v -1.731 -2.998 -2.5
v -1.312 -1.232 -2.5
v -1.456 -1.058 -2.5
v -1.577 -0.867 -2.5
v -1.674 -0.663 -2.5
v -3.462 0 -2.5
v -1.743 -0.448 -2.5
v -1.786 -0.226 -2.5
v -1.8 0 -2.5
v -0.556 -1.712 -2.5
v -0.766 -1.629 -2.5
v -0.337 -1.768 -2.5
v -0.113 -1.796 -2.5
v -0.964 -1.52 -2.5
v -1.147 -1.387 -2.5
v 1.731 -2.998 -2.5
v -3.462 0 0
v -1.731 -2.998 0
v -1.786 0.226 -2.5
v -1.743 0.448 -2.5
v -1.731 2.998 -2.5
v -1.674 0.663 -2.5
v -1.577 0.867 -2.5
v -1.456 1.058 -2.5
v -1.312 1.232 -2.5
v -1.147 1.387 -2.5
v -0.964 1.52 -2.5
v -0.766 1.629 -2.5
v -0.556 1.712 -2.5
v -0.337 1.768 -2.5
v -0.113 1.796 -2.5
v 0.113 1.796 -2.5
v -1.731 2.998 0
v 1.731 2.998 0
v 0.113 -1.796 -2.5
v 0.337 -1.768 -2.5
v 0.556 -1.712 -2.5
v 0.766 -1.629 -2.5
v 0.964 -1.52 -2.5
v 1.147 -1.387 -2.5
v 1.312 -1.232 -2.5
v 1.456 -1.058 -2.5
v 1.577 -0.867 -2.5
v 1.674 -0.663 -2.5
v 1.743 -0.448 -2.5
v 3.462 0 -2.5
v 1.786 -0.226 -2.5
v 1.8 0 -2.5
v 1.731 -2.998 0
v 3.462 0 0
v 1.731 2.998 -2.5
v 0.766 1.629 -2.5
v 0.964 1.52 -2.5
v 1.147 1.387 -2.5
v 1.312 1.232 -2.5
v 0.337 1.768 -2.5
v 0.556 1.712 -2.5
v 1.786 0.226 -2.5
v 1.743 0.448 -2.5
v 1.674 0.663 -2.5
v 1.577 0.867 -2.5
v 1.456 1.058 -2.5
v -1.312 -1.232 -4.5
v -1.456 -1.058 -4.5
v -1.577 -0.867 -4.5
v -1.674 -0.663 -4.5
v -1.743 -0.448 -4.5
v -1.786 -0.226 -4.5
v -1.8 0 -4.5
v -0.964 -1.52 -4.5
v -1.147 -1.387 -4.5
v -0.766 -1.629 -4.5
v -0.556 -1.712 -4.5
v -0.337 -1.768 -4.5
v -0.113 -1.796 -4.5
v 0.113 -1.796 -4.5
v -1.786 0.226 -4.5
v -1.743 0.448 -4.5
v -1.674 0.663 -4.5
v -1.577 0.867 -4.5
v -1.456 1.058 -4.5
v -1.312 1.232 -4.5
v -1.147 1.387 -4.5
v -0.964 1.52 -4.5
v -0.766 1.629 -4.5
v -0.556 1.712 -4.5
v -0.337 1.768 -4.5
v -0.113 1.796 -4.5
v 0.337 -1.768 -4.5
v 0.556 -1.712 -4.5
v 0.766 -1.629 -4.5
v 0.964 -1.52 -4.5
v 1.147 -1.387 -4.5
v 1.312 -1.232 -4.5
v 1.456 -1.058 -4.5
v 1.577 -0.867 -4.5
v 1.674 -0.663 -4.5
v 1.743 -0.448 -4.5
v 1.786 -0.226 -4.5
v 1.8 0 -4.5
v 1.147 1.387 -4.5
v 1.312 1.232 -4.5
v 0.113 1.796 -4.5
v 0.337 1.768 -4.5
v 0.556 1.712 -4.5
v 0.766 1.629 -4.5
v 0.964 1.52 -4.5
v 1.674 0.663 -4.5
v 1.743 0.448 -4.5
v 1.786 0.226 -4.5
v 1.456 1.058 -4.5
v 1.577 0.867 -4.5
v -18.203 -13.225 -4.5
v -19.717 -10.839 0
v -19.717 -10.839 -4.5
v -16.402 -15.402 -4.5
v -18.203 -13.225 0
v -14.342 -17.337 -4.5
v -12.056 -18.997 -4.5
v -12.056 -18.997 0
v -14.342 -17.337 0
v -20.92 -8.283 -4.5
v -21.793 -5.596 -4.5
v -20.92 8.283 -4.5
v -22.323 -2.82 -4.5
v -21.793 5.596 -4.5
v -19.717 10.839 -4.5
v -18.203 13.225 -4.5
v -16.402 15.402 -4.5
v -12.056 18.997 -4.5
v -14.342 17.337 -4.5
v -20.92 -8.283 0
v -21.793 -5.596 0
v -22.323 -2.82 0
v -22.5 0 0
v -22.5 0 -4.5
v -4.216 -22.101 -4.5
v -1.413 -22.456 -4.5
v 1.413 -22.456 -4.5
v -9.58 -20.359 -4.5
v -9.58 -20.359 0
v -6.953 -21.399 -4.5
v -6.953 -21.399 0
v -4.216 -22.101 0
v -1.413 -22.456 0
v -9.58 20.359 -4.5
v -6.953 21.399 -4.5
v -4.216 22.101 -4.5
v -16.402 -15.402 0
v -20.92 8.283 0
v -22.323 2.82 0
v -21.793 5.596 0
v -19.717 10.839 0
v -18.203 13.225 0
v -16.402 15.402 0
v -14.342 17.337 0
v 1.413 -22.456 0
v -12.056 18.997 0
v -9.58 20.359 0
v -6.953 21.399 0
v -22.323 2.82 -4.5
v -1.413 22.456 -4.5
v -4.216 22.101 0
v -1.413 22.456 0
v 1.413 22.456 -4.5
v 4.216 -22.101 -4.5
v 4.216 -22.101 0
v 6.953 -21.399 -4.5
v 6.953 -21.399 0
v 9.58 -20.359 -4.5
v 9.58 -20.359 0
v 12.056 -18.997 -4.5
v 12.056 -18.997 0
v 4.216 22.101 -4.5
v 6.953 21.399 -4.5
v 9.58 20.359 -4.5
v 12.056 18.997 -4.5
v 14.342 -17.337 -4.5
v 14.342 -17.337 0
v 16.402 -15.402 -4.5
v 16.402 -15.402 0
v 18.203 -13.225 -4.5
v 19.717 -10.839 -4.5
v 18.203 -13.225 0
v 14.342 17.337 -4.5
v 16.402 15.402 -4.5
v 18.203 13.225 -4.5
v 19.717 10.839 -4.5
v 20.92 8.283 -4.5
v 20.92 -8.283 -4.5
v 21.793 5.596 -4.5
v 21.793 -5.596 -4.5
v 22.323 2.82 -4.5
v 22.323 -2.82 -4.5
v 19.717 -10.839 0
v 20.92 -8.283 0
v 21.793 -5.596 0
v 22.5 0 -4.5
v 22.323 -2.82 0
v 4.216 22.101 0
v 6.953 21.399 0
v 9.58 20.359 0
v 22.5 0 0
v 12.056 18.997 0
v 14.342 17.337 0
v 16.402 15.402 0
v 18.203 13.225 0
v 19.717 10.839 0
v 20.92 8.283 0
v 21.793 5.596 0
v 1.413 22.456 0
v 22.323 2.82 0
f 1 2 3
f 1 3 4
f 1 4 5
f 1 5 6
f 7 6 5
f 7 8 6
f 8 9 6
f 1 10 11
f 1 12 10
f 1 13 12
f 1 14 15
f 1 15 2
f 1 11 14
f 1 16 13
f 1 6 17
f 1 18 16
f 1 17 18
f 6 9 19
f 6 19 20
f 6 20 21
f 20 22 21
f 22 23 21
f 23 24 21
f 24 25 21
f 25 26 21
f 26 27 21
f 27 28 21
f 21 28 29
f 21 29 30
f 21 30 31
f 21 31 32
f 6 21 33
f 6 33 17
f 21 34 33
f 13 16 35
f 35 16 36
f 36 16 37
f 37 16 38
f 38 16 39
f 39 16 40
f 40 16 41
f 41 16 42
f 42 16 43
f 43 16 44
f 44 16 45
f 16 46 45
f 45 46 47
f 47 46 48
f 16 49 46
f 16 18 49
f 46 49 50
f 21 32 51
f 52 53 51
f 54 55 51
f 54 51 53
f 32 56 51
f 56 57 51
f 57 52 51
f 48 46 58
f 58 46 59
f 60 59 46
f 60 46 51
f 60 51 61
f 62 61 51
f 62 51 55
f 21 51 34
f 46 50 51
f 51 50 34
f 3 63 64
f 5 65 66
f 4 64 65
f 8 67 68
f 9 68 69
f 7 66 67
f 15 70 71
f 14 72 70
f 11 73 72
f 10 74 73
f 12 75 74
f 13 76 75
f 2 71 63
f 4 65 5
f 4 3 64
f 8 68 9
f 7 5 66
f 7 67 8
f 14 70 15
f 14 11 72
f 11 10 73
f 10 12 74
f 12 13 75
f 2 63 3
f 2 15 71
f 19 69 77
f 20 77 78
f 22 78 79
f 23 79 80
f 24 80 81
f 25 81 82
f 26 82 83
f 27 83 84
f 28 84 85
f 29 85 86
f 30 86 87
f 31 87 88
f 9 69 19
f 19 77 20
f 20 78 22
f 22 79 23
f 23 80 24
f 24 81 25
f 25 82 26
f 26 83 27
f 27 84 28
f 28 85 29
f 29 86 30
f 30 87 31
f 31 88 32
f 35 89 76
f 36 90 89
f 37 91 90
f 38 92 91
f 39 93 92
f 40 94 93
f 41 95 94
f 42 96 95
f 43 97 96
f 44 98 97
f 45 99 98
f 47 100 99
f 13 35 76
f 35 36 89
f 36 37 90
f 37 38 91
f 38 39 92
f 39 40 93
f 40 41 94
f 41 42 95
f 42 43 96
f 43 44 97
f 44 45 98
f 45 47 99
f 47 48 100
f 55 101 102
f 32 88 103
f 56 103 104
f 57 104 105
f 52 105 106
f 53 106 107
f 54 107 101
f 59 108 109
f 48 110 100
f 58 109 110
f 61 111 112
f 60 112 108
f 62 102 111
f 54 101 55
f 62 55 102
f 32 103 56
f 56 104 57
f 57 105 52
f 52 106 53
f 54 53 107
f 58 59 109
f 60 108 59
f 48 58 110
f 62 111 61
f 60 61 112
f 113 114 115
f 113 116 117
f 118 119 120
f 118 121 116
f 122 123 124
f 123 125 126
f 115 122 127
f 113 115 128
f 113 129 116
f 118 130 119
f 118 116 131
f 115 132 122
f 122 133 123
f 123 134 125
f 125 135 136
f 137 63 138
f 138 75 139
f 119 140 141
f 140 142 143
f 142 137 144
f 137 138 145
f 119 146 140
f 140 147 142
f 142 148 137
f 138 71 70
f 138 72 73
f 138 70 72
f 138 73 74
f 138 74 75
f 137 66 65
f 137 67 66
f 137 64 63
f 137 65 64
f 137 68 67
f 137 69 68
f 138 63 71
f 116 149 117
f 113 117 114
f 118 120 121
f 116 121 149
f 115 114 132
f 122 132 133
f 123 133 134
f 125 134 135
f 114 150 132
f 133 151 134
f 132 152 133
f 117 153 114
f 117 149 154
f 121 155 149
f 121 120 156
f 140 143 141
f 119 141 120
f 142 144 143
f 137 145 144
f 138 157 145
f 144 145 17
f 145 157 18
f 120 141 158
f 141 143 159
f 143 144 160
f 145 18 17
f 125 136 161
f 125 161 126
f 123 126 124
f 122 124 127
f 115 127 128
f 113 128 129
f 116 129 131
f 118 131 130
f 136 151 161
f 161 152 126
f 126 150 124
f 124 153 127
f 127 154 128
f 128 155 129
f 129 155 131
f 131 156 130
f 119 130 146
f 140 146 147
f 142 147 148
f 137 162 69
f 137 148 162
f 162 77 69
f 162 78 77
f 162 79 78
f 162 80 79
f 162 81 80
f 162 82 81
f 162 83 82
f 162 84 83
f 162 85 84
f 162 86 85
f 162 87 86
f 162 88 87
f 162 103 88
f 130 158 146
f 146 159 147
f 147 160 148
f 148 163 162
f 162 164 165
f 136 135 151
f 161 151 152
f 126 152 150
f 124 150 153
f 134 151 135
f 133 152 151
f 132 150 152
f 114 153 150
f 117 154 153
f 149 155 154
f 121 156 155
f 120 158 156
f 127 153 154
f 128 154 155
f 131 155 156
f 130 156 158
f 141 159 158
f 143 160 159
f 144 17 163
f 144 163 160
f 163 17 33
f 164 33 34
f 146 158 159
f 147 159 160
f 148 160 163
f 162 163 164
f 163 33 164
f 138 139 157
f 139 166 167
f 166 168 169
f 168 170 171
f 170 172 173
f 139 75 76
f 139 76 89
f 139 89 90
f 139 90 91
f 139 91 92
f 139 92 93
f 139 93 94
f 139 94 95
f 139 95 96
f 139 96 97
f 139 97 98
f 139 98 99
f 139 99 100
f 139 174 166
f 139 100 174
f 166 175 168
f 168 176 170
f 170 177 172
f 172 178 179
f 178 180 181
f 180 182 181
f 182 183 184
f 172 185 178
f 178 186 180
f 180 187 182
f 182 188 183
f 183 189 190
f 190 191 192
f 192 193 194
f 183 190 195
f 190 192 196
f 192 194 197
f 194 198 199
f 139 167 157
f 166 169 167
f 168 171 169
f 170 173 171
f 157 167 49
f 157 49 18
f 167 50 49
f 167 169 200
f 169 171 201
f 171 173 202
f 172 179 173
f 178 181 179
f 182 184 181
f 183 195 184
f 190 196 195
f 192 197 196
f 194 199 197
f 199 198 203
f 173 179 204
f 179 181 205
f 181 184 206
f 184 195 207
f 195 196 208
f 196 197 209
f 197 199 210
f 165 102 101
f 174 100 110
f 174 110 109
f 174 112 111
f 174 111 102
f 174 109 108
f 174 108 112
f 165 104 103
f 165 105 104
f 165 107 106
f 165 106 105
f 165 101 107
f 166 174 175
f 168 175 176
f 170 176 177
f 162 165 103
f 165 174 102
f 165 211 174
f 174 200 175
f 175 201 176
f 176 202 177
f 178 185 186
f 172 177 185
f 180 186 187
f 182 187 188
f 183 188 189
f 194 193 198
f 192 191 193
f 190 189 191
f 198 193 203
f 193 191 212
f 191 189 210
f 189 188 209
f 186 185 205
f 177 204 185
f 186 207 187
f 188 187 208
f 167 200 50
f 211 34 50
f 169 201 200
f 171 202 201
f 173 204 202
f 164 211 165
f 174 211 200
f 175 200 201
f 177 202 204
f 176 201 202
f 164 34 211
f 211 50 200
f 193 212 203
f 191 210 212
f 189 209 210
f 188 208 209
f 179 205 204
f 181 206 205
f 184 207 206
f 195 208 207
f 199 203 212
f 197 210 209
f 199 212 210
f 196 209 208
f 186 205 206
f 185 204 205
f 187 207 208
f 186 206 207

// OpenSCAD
$fn = 50;

difference() {
	union() {
		translate(v = [0, 0, -4.5]) {
			cylinder(h = 4.5, r = 22.5);
		}
	}
	union() {
		translate(v = [0, 0, 0]) {
			rotate(a = [0, 0, 0]) {
				difference() {
					union() {
						translate(v = [0, 0, -2.5]) {
							linear_extrude(height = 2.5) {
								polygon(points = [[3.4619999999999997, 0.0], [1.7310000000000003, 2.9981799479017264], [-1.7309999999999992, 2.9981799479017264], [-3.4619999999999997, 4.2397272186481365e-16], [-1.7310000000000014, -2.998179947901726], [1.7309999999999977, -2.9981799479017277]]);
							}
						}
					}
					union();
				}
			}
		}
		#translate(v = [0, 0, -100.0]) {
			cylinder(h = 200, r = 1.8);
		}
	}
}
